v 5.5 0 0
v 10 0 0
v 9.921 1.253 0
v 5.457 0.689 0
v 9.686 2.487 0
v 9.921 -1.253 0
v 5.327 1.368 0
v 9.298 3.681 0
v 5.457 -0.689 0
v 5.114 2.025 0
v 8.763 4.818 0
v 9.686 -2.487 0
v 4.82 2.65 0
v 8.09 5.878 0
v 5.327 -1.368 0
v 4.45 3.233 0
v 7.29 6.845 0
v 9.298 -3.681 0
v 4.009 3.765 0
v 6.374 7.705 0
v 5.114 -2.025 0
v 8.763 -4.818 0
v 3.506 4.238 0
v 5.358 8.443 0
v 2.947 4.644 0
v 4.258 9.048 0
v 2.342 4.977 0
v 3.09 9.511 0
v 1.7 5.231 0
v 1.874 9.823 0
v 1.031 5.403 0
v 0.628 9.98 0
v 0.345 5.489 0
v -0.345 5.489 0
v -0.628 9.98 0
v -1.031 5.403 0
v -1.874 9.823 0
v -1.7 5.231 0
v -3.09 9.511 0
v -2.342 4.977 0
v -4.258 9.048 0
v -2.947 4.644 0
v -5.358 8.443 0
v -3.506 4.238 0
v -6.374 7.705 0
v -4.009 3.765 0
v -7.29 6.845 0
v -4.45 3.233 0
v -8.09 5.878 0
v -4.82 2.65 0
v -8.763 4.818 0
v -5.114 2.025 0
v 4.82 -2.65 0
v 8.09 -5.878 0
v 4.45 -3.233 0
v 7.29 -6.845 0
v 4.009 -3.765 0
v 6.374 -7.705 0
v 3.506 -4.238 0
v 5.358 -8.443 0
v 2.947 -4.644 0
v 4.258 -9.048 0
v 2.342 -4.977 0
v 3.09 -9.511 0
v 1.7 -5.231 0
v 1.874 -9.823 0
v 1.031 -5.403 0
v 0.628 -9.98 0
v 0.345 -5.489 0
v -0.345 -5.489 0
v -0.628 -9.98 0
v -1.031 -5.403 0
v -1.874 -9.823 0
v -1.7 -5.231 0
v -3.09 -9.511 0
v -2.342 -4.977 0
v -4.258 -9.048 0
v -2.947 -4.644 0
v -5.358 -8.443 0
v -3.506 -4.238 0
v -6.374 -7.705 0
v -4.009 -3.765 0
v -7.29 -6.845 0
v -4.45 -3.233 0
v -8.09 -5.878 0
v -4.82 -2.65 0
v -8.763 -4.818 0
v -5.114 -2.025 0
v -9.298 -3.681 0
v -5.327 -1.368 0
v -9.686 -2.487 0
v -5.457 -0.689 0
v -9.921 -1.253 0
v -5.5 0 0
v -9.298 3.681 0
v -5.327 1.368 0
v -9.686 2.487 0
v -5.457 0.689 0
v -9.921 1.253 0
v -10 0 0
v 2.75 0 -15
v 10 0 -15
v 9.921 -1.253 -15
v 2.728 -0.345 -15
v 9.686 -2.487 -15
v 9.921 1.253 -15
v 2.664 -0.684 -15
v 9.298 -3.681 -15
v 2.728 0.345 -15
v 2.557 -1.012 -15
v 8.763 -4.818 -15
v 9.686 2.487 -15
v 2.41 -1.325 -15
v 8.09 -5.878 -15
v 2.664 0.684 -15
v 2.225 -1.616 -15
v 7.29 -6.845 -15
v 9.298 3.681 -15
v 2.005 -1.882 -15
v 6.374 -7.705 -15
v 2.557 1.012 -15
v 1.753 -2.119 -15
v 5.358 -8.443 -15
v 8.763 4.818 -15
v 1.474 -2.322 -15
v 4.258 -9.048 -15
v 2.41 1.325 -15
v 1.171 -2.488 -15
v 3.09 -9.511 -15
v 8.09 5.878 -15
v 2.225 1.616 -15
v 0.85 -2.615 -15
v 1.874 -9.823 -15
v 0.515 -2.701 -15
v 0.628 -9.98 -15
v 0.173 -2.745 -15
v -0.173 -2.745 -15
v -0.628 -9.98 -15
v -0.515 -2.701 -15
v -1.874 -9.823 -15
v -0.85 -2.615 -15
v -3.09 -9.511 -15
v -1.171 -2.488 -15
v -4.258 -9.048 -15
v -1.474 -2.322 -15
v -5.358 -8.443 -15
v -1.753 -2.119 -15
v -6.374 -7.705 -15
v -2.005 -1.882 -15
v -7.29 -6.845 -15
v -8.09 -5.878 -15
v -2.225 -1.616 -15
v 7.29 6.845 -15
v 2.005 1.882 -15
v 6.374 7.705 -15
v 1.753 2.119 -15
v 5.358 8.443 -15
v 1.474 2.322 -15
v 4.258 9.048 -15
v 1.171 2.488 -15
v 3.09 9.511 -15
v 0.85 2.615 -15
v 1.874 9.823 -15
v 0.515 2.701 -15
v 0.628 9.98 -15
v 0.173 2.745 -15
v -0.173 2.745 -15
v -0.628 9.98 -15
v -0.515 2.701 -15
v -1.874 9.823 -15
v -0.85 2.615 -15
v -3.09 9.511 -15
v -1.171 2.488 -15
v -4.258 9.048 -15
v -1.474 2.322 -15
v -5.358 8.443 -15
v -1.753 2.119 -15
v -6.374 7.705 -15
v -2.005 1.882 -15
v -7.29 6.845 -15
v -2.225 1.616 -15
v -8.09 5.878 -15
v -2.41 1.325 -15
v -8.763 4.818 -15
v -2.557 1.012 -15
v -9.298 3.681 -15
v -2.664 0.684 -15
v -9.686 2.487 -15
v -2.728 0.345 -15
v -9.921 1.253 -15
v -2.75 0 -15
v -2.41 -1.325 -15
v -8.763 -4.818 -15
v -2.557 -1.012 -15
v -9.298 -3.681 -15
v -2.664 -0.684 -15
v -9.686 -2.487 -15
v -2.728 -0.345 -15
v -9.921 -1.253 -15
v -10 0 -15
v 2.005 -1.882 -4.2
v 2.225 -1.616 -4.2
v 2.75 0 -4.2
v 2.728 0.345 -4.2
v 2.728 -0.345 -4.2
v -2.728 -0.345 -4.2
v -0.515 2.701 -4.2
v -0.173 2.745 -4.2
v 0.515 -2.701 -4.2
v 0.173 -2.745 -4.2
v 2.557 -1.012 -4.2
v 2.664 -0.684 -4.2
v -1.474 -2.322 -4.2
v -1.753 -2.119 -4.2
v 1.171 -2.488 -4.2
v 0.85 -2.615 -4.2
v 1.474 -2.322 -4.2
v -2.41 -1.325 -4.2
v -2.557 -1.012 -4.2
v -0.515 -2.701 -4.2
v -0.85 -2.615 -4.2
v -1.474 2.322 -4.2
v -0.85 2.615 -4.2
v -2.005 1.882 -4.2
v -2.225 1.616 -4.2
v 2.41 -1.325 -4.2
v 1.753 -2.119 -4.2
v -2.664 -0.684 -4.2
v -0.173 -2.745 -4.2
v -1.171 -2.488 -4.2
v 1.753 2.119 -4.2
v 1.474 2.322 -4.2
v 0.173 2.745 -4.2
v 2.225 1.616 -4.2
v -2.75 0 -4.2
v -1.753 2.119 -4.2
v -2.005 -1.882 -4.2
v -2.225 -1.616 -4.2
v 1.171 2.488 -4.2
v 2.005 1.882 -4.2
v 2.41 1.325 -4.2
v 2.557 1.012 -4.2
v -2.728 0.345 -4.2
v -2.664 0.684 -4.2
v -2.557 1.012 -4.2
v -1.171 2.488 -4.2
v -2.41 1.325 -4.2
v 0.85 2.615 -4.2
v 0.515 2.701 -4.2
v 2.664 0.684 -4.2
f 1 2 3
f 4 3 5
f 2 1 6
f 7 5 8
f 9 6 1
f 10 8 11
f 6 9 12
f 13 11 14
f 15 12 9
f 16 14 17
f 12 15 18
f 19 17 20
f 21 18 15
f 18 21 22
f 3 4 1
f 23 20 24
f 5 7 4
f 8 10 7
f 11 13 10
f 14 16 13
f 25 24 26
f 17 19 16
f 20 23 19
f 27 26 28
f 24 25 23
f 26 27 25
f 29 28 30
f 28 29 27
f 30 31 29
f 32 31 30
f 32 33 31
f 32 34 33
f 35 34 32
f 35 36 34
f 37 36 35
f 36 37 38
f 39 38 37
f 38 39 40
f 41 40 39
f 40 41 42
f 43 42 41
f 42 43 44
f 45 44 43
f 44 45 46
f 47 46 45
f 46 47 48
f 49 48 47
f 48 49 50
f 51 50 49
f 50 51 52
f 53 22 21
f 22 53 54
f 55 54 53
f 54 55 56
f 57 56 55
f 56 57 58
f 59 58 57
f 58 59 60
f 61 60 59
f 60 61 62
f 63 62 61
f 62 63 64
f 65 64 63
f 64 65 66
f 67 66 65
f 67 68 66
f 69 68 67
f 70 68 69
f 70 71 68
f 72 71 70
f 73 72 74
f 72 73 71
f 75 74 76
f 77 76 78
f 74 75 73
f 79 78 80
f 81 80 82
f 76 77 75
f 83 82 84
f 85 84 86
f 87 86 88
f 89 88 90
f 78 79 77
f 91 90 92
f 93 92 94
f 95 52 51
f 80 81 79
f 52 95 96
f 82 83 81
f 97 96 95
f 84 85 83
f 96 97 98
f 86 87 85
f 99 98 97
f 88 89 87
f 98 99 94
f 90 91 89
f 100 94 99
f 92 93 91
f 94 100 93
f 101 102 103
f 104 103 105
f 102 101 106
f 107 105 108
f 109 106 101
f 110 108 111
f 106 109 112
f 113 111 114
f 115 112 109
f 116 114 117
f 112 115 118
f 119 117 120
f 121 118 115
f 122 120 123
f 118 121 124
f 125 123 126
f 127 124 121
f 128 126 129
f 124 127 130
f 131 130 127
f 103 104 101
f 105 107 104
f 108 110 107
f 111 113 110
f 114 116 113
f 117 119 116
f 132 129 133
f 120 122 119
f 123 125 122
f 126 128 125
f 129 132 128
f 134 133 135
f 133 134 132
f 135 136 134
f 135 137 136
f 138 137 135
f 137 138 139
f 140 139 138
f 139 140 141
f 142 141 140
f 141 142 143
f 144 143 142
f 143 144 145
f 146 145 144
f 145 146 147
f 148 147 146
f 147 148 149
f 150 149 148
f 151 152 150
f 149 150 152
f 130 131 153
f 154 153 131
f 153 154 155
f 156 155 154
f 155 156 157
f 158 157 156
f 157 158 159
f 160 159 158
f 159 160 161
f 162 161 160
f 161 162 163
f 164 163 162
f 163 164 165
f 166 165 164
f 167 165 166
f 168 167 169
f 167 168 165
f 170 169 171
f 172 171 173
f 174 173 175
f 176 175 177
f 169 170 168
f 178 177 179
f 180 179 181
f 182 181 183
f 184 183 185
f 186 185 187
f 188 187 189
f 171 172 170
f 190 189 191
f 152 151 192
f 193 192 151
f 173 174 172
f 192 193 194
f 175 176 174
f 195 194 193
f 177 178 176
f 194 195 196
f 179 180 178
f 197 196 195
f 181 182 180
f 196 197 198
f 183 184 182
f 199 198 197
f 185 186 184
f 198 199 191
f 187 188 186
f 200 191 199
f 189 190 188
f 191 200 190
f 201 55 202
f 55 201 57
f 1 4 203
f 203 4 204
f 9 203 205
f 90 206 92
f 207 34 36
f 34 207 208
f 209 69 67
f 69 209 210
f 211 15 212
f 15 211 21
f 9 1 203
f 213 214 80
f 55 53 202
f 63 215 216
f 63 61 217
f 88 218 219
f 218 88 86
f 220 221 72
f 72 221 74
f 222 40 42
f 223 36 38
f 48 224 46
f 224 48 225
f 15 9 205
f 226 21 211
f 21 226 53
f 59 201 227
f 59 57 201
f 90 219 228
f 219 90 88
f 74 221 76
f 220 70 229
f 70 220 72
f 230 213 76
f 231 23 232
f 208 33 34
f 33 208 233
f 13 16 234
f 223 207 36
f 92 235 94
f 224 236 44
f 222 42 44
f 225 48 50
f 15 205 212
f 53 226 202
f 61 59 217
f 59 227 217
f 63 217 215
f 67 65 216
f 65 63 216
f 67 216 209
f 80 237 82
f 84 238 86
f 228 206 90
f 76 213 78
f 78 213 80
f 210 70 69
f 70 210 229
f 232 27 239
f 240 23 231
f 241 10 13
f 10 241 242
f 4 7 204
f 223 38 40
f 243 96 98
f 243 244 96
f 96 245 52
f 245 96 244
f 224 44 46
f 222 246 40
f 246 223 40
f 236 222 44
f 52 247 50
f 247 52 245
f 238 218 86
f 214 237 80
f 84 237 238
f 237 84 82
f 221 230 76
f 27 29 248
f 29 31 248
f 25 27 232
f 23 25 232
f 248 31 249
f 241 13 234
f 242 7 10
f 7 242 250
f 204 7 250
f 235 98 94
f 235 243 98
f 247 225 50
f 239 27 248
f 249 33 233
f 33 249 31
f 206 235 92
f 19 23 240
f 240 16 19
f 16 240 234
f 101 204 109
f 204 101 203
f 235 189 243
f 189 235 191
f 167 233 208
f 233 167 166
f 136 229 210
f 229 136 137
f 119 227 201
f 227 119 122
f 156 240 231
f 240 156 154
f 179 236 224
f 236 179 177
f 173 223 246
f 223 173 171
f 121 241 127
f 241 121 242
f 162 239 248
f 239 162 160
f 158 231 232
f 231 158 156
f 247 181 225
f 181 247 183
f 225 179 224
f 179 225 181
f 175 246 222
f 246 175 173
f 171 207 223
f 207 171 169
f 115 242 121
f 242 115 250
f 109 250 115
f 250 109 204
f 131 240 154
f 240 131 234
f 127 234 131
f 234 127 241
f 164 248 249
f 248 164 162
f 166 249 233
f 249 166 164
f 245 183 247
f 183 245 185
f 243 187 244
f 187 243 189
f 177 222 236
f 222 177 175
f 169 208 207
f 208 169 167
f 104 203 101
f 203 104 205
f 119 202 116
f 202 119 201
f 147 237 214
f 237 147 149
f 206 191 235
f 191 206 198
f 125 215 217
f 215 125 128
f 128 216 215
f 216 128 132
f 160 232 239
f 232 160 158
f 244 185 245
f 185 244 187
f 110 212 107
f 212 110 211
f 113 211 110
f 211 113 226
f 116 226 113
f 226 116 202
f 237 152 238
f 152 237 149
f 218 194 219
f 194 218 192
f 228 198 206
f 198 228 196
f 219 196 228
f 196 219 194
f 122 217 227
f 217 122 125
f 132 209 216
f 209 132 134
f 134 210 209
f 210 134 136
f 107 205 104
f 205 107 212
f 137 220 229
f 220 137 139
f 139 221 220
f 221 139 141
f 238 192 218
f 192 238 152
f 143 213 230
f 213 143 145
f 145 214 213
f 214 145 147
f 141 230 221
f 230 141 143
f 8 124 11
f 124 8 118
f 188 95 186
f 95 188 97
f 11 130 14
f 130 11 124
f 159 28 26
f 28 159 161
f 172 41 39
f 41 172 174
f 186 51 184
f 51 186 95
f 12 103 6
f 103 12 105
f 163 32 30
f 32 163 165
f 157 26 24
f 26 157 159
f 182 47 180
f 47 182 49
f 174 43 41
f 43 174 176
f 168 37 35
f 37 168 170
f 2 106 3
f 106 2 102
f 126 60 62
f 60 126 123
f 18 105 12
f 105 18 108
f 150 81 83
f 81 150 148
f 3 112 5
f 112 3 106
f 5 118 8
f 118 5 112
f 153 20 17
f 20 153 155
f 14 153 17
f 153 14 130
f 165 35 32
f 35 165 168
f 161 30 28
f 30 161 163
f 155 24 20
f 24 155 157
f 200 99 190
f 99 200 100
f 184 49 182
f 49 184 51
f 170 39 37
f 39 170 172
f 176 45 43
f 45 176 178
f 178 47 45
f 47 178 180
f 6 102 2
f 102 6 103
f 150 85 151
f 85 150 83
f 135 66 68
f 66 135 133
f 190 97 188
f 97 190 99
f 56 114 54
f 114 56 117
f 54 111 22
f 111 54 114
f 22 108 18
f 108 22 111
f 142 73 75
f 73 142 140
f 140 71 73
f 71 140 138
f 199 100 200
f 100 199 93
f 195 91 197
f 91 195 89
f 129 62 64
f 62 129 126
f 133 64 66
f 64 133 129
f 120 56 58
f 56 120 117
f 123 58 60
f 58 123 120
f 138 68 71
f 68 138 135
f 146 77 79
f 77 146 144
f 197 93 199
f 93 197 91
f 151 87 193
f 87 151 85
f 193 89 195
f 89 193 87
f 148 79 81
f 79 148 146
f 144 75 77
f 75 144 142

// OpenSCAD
$fn = 50;


difference() {
	union() {
		translate(v = [0, 0, -15.0000000000]) {
			cylinder(h = 15, r = 10.0000000000);
		}
		cylinder(h = 0, r = 13.0000000000);
	}
	union() {
		translate(v = [0, 0, 0]) {
			rotate(a = [0, 0, 0]) {
				difference() {
					union() {
						#translate(v = [0, 0, -15.0000000000]) {
							cylinder(h = 15, r = 2.2500000000);
						}
						#translate(v = [0, 0, -4.2000000000]) {
							cylinder(h = 4.2000000000, r1 = 2.7500000000, r2 = 5.5000000000);
						}
						#translate(v = [0, 0, -15.0000000000]) {
							cylinder(h = 15, r = 2.7500000000);
						}
						#translate(v = [0, 0, -15.0000000000]) {
							cylinder(h = 15, r = 2.2500000000);
						}
					}
					union();
				}
			}
		}
	}
}
